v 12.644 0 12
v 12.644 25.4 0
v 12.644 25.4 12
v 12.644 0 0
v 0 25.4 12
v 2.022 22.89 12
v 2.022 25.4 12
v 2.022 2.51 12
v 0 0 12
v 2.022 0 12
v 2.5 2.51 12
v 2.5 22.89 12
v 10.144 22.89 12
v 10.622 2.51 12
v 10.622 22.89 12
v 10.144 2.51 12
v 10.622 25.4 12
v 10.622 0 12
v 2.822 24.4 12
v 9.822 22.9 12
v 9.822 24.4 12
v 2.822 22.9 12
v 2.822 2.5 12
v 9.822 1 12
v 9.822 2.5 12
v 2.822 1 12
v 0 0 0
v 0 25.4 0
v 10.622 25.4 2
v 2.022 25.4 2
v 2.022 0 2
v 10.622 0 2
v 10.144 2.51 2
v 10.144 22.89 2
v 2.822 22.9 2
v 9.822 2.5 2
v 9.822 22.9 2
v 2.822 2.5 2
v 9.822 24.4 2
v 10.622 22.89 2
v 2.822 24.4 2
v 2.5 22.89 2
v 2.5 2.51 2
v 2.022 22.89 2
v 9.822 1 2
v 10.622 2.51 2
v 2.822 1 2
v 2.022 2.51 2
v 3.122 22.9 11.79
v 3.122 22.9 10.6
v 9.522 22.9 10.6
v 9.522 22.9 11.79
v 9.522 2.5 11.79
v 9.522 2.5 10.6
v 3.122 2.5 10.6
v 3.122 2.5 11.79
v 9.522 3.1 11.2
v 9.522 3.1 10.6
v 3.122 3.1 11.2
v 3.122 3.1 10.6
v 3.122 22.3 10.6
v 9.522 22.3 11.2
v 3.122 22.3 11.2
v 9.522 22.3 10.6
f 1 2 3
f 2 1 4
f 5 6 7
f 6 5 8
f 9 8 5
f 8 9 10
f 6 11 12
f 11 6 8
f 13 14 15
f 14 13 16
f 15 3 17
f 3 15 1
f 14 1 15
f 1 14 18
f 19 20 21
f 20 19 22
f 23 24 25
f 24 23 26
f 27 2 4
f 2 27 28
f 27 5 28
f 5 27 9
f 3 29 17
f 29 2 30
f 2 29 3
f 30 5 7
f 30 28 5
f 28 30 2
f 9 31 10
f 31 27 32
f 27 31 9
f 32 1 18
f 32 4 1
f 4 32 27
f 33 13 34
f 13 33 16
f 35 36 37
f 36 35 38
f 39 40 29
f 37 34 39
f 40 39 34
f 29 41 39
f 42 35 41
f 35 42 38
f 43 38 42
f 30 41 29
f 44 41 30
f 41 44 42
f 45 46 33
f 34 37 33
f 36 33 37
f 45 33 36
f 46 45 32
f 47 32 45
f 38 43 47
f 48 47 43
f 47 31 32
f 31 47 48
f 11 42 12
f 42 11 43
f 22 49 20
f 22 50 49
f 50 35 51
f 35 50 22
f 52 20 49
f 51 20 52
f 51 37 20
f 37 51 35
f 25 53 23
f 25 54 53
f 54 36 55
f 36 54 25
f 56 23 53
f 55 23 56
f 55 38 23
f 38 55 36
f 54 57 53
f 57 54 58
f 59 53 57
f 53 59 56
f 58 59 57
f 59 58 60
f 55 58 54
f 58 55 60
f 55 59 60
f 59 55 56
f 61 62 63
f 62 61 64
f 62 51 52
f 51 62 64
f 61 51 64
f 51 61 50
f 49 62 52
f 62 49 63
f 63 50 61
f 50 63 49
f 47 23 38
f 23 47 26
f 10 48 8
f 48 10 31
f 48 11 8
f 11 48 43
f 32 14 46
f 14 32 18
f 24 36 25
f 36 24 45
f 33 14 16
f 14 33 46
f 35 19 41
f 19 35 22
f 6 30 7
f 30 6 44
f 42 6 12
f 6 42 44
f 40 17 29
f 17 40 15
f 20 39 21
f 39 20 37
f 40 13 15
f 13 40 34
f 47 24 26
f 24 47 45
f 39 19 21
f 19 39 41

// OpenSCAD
// file: rack_params.scad
// 噛み合わせバーの共通寸法（rack_bar / bar_socket で共有）

/* [本体] */
L = 150;                 // 全長
W = 20;                  // 幅
stack_h = 20;            // 2本噛み合わせ時の合計厚さ

/* [歯] */
pitch = 5;               // 山の間隔
apex_angle = 45;         // 山の頂角
end_flat = 10;           // 両端の歯なし区間（谷底高さで平坦）
tip_r = 0.8;             // 山のR
root_r = 0.5;            // 谷のR（tip_r より小さくすること）
clr = 0.2;               // 噛み合いクリアランス（歯面の法線方向、2本合計）

half = apex_angle / 2;
tooth_h = (pitch / 2) / tan(half);          // 尖った歯の理論高さ
c = clr / 2;                                // 1本あたりの歯面オフセット
// 歯面オフセットで沈み込む分を補正して合計厚さを stack_h に保つ
base_t = (stack_h - tooth_h + 2 * c / sin(half)) / 2;

/* [スナップ（bar_socket の爪と，バー端の溝）] */
// バー端からの距離 x で測る．溝はバーの細い側面（幅方向の両端面）に，厚さ方向へ横断して入れる．
snap_fit = 0.2;          // ソケット内面とバーのすき間（bar_socket の fit と同じ）
snap_bead_d = 0.6;       // 爪の返しの張り出し（たわみ = snap_bead_d - snap_fit = 0.4）
snap_bead_x0 = 8.6;      // 返しの水平面（抜け止め面）の位置（バー端から）
snap_bead_h = 1.2;       // 返しの高さ（水平面から 45° 導入面の上端まで）
snap_groove_x0 = 8.4;    // 溝の範囲（バー端から）．抜け止め面との遊び 0.2
snap_groove_x1 = 10.0;   // 歯の始まり（end_flat）まで
snap_groove_d = 0.8;     // 溝の深さ
// main file
// バー端部の差し込みソケット（別体、底面を相手部品に接着）
// フレーム取付ジグ・カメラトレイの両方で共用する。
// バーの細い側面と向き合う 2 枚の壁をスナップ爪にし，返しがバー端の溝（rack_bar.scad の snap_groove）に
// パチッとはまる．溝の無い古いバーでも，爪が 0.4 押し付けて摩擦で保持する．
// 印刷: 底面をベッドに置いてそのまま．サポート不要．

include <rack_params.scad>

/* [ソケット] */
fit = snap_fit;          // バーとのすき間（片側）
sock_wall = 2.5;         // 側壁厚
sock_floor = 2;          // 底厚（接着面）
sock_depth = end_flat;   // 差し込み深さ = 歯なし区間

/* [スナップ爪] */
snap_enable = true;
tab_t = 1.5;             // 爪の厚さ（壁の外側を削って薄くする）
tab_w = 7;               // 爪の幅
slot_w = 0.8;            // 爪の両脇のスリット

$fn = 64;

in_x = base_t + 2 * fit;     // バー厚さ方向
in_y = W + 2 * fit;          // バー幅方向
sock_x = in_x + 2 * sock_wall;
sock_y = in_y + 2 * sock_wall;
sock_h = sock_floor + sock_depth;
tab_x0 = sock_x / 2 - tab_w / 2;

// 計算値
tab_l = sock_depth;
defl = snap_bead_d - fit;
strain = 3 * tab_t * defl / (2 * tab_l * tab_l);
echo(str("bar_socket: ", sock_x, " x ", sock_y, " x ", sock_h, "  tab L=", tab_l, " t=", tab_t,
         " deflection=", defl, " strain=", strain * 100, " %  engagement=", defl, " mm"));
if (strain > 0.02) echo("WARNING: snap strain > 2 %");
if (tab_x0 - slot_w < 1.5) echo("WARNING: socket corners too thin");

// 返しの断面（u = 壁の内面から内側へ，z = 高さ）．下面は水平（抜け止め），上面は 45°（導入）
module bead_profile() {
    z0 = sock_floor + snap_bead_x0;
    polygon([[-0.01, z0], [snap_bead_d, z0], [snap_bead_d, z0 + snap_bead_h - snap_bead_d],
             [-0.01, z0 + snap_bead_h]]);
}

module bar_socket() {
    difference() {
        union() {
            difference() {
                cube([sock_x, sock_y, sock_h]);
                translate([sock_wall, sock_wall, sock_floor])
                    cube([in_x, in_y, sock_depth + 1]);
            }
            if (snap_enable) {
                // y = sock_wall の壁（内側 +y へ）
                translate([tab_x0 + 0.3, sock_wall, 0]) rotate([90, 0, 90])
                    linear_extrude(tab_w - 0.6) bead_profile();
                // y = sock_y - sock_wall の壁（内側 -y へ）
                translate([tab_x0 + 0.3, sock_y - sock_wall, 0]) mirror([0, 1, 0]) rotate([90, 0, 90])
                    linear_extrude(tab_w - 0.6) bead_profile();
            }
        }
        if (snap_enable)
            for (s = [0, 1]) {
                y_out = s == 0 ? -1 : sock_y - (sock_wall - tab_t);
                // 爪の外側を削って tab_t にする
                translate([tab_x0, y_out, sock_floor])
                    cube([tab_w, sock_wall - tab_t + 1, sock_depth + 1]);
                // 爪の両脇のスリット
                for (x = [tab_x0 - slot_w, tab_x0 + tab_w])
                    translate([x, s == 0 ? -1 : sock_y - sock_wall - 0.01, sock_floor])
                        cube([slot_w, sock_wall + 1.01, sock_depth + 1]);
            }
    }
}

bar_socket();
